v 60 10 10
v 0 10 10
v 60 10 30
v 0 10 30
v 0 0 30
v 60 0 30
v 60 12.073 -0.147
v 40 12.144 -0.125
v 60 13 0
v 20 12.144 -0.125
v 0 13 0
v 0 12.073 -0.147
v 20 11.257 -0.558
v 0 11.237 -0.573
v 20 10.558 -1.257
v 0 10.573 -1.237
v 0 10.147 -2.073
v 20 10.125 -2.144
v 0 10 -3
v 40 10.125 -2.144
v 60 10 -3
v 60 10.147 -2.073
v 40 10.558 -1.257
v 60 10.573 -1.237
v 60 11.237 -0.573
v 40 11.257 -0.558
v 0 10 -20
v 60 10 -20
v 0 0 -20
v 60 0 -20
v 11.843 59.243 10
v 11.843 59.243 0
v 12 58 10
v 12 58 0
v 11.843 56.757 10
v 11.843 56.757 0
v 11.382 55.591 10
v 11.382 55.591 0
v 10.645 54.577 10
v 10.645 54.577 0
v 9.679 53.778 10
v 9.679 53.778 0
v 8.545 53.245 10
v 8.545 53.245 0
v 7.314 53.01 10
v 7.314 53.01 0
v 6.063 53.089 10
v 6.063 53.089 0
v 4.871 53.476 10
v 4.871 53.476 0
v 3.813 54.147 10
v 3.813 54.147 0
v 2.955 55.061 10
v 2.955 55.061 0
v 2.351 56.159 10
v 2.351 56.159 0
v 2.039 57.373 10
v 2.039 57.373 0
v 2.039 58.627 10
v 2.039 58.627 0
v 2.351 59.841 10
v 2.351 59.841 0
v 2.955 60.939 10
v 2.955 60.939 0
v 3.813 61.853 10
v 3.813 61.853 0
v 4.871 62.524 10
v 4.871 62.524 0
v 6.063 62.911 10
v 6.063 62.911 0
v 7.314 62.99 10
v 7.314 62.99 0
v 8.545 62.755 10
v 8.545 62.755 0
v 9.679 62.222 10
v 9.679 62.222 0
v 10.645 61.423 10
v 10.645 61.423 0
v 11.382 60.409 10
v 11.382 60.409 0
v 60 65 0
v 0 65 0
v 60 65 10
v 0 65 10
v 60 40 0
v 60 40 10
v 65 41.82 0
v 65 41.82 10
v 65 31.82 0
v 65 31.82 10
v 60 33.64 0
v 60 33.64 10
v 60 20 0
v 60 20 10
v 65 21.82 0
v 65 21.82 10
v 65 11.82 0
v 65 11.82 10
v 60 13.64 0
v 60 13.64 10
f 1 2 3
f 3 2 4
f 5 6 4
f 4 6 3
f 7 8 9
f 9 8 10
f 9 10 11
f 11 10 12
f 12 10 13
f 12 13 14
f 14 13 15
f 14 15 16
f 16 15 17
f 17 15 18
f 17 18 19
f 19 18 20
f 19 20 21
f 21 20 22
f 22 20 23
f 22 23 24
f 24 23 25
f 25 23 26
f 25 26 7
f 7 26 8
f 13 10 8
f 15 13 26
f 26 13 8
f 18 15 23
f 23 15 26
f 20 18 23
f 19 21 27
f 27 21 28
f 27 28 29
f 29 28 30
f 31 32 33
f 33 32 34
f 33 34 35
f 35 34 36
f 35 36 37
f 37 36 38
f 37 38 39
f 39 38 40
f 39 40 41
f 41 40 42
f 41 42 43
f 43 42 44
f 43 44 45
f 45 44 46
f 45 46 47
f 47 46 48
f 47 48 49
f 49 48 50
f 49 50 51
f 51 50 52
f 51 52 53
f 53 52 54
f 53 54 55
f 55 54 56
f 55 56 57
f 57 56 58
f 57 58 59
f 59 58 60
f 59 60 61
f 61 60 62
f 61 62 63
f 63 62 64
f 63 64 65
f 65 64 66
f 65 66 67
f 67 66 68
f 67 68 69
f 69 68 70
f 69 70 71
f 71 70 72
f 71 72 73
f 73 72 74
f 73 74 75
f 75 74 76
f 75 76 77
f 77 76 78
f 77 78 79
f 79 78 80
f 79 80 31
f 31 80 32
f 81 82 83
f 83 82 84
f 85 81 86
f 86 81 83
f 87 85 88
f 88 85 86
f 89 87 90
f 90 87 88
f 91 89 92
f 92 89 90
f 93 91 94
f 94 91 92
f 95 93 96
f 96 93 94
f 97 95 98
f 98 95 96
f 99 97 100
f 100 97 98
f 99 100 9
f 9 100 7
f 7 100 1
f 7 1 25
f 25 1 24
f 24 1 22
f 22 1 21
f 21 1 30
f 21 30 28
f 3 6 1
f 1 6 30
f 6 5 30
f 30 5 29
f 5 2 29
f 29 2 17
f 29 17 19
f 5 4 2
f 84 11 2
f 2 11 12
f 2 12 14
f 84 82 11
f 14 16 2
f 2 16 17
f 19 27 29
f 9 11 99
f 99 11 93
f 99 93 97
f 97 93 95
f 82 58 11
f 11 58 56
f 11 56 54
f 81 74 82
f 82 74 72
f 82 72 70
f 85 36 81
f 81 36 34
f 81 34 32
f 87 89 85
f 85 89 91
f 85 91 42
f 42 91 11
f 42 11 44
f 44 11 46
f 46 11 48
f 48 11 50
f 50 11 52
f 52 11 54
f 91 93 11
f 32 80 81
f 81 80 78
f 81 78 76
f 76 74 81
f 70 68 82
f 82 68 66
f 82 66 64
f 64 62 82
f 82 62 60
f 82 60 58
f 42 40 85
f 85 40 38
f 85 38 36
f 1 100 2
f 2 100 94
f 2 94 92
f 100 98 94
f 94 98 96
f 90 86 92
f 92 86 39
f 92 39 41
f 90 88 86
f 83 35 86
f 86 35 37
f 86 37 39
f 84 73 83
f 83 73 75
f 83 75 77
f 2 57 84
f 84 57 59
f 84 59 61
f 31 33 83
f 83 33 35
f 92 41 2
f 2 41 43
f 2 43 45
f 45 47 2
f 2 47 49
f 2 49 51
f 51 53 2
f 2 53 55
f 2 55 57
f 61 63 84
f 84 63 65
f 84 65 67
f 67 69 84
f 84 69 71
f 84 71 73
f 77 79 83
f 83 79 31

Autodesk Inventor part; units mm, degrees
ref_plane "YZ Plane" through (0, 0, 0) normal (1, 0, 0) x (0, 1, 0)
ref_plane "XZ Plane" through (0, 0, 0) normal (0, 1, 0) x (-1, 0, 0)
ref_plane "XY Plane" through (0, 0, 0) normal (0, 0, 1) x (1, 0, 0)
sketch "Sketch1" plane through (0, 0, 0) normal (0, 0, 1) x (1, 0, 0)
  line L0 (0, 0) -> (0, 65)
  line L1 (0, 65) -> (60, 65)
  line L2 (60, 0) -> (0, 0)
  line L3 (60, 13.6397) -> (65, 11.8199)
  line L4 (65, 11.8199) -> (65, 21.8199)
  line L5 (65, 21.8199) -> (60, 20)
  line L6 (60, 13.6397) -> (60, 0)
  line L7 (60, 40) -> (65, 41.8199)
  line L8 (65, 41.8199) -> (65, 31.8199)
  line L9 (65, 31.8199) -> (60, 33.6397)
  line L10 (60, 65) -> (60, 40)
  line L11 (60, 33.6397) -> (60, 20)
  circle A0 centre (7, 58) radius 5
  dimension "d0" = 65
  dimension "d1" = 60
  dimension "d2" = 10
  dimension "d6" = 6.3603
  dimension "d7" = 5
  dimension "d8" = 20
  dimension "d10" = 70
  dimension "d11" = 13.6397
  dimension "d12" = 10
  dimension "d13" = 70
  dimension "d14" = 70
  dimension "d15" = 70
  dimension "d16" = 5
  dimension "d17" = 40
  dimension "d18" = 10
  dimension "d19" = 7
  dimension "d20" = 7
extrude "Extrusion1" add sketch "Sketch1" along normal blind 10
sketch "Sketch2" plane through (0, 0, 0) normal (0, 0, -1) x (-1, 0, 0)
  line L0 (0, 65) -> (0, 0) projected
  line L1 (0, 0) -> (0, 10)
  line L2 (0, 10) -> (-60, 10)
  line L3 (-60, 0) -> (-60, 13.6397) projected
  line L4 (-60, 0) -> (0, 0)
  dimension "d23" = 10
sketch "Sketch3" plane through (0, 0, 0) normal (0, 0, -1) x (-1, 0, 0)
  point P0 (0, 0)
extrude "Extrusion2" add sketch "Sketch2" along normal blind 20
fillet "Fillet1" radius 3 1 edges at (30, 10, 0)
sketch "Sketch4" plane through (0, 0, 10) normal (0, 0, 1) x (1, 0, 0)
  line L0 (0, 0) -> (0, 10) projected
  line L1 (60, 10) -> (60, 13) projected
  line L2 (0, 10) -> (60, 10)
  line L3 (60, 10) -> (60, 0)
  line L4 (0, 0) -> (60, 0) projected
  line L5 (60, 0) -> (0, 0)
  line L6 (0, 0) -> (0, 10)
extrude "Extrusion3" add sketch "Sketch4" along normal blind 20
properties part number "SpoolWinderDriveBase"
